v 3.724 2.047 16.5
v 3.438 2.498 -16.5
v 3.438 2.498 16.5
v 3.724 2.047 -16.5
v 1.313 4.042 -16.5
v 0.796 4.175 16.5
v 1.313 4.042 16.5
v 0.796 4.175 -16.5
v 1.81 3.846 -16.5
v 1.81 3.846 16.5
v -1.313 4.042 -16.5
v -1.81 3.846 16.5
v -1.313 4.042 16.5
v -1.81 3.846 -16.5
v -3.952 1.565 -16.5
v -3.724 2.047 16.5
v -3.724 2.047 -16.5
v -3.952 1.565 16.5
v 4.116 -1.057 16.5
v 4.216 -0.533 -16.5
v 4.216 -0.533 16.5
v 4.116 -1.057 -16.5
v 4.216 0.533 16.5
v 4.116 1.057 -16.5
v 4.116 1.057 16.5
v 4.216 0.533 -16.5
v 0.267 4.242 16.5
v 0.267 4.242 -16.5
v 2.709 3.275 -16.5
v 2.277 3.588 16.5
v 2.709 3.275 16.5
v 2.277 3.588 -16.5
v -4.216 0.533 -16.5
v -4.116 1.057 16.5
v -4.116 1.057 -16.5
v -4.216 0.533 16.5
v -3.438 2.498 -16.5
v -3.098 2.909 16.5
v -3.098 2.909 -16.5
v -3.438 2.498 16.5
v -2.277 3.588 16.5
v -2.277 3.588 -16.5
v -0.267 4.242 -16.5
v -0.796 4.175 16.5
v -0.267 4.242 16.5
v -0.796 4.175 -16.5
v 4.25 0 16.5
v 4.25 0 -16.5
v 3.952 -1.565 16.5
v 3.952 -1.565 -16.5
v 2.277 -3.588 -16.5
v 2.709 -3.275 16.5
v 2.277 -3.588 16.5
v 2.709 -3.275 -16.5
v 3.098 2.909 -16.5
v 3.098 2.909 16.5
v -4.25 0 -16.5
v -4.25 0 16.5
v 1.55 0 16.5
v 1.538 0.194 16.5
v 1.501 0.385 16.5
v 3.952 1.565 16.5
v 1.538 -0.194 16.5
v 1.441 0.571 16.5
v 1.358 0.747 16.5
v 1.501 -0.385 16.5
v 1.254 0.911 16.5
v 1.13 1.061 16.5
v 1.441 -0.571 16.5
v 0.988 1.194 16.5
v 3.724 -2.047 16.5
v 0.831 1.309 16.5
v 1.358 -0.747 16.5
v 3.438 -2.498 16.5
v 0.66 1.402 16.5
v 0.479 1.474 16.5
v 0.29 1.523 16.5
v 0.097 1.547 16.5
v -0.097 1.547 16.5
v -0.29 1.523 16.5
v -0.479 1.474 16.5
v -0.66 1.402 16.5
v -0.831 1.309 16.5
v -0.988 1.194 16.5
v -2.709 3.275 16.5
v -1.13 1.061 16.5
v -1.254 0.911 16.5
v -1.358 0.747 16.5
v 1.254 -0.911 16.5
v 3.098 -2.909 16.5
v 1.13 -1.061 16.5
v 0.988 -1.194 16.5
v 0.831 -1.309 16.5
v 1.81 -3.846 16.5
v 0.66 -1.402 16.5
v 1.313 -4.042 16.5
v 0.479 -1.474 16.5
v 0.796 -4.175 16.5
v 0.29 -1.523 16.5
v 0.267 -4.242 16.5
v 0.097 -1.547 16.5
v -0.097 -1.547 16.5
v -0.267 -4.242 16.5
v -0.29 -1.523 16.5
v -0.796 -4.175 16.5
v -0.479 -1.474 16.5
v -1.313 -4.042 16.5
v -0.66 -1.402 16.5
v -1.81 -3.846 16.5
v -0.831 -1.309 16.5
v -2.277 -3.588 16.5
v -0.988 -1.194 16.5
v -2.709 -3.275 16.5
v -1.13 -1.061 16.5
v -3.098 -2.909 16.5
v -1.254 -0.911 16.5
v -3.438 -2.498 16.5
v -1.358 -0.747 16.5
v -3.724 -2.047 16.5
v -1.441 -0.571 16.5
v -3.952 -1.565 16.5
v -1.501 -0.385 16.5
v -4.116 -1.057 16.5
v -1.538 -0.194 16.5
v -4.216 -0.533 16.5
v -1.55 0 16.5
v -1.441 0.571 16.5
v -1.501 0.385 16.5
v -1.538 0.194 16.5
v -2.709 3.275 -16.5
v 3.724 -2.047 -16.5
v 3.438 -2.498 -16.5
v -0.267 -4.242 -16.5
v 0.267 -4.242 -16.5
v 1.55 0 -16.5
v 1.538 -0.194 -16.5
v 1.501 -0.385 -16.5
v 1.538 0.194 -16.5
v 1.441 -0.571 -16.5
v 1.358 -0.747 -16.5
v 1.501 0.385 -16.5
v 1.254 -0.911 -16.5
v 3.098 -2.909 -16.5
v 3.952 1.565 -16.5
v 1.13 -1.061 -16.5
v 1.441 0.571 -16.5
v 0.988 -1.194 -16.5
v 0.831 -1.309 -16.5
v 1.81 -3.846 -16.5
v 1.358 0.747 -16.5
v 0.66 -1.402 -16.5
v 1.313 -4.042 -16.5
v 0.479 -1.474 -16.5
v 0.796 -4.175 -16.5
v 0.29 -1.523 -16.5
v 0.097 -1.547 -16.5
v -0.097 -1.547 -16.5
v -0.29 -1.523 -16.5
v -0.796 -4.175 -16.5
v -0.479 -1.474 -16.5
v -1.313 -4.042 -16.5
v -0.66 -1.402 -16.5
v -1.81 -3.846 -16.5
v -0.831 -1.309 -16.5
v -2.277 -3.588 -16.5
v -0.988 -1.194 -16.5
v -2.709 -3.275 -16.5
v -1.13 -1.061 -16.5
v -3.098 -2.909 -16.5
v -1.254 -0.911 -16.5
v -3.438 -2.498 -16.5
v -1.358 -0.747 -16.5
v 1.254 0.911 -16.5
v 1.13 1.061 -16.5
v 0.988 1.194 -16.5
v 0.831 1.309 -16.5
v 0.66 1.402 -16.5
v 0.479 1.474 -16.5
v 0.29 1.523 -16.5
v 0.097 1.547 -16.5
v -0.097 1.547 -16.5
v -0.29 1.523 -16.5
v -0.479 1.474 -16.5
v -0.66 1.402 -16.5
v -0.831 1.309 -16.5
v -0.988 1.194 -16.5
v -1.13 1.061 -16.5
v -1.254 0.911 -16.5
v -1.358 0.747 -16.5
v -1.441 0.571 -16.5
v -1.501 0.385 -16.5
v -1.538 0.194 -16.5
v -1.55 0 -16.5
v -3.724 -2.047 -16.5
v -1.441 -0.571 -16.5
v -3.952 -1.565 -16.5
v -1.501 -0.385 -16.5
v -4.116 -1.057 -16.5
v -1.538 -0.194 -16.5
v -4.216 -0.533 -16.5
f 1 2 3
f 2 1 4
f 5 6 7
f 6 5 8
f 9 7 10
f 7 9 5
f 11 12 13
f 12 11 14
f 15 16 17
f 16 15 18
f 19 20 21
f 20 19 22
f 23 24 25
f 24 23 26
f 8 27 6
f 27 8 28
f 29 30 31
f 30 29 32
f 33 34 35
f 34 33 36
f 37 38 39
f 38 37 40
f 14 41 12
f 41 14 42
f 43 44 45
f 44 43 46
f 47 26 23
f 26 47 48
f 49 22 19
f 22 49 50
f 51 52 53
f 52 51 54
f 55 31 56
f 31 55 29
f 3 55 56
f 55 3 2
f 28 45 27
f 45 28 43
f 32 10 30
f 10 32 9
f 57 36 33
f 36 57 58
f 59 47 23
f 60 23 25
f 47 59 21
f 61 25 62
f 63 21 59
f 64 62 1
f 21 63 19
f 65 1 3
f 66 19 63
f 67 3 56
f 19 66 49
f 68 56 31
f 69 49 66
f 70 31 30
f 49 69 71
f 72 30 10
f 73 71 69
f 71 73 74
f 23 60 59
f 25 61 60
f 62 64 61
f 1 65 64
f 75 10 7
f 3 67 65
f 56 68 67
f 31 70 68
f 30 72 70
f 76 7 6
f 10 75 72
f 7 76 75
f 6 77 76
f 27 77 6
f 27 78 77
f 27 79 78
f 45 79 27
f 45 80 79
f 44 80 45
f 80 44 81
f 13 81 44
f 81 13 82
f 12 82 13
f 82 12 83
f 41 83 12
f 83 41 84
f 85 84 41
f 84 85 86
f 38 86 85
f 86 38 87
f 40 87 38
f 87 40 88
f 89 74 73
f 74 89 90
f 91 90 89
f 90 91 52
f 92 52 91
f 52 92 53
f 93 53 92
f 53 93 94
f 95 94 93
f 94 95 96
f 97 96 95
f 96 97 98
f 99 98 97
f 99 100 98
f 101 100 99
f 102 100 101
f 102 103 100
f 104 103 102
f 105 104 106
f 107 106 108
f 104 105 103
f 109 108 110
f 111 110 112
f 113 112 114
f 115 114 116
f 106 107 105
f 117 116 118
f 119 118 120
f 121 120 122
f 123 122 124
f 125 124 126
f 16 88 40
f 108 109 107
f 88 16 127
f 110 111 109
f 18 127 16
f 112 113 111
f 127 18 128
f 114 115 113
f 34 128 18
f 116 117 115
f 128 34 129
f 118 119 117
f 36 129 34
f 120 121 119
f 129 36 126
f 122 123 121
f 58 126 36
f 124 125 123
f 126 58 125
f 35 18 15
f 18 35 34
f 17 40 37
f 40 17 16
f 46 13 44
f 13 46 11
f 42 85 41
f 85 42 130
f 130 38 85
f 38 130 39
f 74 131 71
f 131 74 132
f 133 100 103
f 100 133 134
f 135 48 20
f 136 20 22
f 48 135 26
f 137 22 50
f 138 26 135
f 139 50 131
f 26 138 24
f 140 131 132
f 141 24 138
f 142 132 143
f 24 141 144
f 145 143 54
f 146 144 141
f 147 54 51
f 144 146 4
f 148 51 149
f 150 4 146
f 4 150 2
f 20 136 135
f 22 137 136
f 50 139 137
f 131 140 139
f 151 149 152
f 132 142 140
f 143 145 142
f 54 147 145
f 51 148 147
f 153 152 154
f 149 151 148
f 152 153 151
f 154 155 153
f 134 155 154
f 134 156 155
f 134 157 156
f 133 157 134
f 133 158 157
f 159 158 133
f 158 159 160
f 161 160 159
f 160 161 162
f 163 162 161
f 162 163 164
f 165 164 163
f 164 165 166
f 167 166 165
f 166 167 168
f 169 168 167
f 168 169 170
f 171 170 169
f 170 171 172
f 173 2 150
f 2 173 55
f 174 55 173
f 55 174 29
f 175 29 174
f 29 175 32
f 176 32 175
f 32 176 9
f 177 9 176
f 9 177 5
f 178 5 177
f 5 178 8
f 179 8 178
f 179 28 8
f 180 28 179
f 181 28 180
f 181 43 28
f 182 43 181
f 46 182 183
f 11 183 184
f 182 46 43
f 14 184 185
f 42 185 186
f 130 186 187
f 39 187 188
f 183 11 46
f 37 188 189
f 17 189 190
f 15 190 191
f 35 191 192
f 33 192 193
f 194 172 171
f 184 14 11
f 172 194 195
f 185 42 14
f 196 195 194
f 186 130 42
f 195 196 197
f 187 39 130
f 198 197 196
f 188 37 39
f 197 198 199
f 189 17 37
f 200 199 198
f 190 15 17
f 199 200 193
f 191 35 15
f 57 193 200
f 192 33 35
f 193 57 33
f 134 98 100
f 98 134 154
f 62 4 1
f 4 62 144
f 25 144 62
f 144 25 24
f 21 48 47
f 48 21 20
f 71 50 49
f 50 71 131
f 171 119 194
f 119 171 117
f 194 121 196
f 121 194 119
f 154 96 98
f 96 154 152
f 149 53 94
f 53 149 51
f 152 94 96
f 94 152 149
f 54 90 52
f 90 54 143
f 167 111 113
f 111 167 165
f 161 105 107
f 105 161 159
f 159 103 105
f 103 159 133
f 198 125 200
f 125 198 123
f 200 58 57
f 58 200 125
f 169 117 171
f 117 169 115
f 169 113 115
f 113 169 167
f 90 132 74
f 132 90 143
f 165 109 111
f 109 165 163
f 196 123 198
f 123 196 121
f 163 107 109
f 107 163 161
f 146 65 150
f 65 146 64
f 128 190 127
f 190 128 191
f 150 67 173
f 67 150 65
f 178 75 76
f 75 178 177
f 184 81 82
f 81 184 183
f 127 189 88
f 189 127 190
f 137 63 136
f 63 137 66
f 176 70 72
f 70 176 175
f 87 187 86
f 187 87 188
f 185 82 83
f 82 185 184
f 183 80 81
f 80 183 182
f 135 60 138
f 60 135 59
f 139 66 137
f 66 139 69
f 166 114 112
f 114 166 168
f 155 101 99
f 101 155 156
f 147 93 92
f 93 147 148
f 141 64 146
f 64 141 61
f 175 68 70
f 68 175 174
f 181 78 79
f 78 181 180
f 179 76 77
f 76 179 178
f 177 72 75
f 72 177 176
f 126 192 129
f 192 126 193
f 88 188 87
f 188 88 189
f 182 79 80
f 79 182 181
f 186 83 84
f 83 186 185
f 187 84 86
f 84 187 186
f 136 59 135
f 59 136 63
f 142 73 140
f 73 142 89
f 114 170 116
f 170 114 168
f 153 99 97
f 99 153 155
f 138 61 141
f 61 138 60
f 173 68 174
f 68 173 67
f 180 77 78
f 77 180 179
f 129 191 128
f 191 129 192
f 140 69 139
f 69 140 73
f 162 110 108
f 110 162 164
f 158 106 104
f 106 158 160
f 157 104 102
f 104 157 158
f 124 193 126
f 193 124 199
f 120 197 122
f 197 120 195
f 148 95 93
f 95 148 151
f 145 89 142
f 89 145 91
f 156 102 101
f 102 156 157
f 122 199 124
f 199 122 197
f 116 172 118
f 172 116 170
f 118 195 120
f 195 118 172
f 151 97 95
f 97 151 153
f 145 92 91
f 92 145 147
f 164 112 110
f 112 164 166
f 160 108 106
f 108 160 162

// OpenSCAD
$fn = 50;


difference() {
	union() {
		translate(v = [0, 0, -16.5000000000]) {
			cylinder(h = 33, r = 4.2500000000);
		}
	}
	union() {
		translate(v = [0, 0, -100.0000000000]) {
			cylinder(h = 200, r = 1.5500000000);
		}
	}
}
